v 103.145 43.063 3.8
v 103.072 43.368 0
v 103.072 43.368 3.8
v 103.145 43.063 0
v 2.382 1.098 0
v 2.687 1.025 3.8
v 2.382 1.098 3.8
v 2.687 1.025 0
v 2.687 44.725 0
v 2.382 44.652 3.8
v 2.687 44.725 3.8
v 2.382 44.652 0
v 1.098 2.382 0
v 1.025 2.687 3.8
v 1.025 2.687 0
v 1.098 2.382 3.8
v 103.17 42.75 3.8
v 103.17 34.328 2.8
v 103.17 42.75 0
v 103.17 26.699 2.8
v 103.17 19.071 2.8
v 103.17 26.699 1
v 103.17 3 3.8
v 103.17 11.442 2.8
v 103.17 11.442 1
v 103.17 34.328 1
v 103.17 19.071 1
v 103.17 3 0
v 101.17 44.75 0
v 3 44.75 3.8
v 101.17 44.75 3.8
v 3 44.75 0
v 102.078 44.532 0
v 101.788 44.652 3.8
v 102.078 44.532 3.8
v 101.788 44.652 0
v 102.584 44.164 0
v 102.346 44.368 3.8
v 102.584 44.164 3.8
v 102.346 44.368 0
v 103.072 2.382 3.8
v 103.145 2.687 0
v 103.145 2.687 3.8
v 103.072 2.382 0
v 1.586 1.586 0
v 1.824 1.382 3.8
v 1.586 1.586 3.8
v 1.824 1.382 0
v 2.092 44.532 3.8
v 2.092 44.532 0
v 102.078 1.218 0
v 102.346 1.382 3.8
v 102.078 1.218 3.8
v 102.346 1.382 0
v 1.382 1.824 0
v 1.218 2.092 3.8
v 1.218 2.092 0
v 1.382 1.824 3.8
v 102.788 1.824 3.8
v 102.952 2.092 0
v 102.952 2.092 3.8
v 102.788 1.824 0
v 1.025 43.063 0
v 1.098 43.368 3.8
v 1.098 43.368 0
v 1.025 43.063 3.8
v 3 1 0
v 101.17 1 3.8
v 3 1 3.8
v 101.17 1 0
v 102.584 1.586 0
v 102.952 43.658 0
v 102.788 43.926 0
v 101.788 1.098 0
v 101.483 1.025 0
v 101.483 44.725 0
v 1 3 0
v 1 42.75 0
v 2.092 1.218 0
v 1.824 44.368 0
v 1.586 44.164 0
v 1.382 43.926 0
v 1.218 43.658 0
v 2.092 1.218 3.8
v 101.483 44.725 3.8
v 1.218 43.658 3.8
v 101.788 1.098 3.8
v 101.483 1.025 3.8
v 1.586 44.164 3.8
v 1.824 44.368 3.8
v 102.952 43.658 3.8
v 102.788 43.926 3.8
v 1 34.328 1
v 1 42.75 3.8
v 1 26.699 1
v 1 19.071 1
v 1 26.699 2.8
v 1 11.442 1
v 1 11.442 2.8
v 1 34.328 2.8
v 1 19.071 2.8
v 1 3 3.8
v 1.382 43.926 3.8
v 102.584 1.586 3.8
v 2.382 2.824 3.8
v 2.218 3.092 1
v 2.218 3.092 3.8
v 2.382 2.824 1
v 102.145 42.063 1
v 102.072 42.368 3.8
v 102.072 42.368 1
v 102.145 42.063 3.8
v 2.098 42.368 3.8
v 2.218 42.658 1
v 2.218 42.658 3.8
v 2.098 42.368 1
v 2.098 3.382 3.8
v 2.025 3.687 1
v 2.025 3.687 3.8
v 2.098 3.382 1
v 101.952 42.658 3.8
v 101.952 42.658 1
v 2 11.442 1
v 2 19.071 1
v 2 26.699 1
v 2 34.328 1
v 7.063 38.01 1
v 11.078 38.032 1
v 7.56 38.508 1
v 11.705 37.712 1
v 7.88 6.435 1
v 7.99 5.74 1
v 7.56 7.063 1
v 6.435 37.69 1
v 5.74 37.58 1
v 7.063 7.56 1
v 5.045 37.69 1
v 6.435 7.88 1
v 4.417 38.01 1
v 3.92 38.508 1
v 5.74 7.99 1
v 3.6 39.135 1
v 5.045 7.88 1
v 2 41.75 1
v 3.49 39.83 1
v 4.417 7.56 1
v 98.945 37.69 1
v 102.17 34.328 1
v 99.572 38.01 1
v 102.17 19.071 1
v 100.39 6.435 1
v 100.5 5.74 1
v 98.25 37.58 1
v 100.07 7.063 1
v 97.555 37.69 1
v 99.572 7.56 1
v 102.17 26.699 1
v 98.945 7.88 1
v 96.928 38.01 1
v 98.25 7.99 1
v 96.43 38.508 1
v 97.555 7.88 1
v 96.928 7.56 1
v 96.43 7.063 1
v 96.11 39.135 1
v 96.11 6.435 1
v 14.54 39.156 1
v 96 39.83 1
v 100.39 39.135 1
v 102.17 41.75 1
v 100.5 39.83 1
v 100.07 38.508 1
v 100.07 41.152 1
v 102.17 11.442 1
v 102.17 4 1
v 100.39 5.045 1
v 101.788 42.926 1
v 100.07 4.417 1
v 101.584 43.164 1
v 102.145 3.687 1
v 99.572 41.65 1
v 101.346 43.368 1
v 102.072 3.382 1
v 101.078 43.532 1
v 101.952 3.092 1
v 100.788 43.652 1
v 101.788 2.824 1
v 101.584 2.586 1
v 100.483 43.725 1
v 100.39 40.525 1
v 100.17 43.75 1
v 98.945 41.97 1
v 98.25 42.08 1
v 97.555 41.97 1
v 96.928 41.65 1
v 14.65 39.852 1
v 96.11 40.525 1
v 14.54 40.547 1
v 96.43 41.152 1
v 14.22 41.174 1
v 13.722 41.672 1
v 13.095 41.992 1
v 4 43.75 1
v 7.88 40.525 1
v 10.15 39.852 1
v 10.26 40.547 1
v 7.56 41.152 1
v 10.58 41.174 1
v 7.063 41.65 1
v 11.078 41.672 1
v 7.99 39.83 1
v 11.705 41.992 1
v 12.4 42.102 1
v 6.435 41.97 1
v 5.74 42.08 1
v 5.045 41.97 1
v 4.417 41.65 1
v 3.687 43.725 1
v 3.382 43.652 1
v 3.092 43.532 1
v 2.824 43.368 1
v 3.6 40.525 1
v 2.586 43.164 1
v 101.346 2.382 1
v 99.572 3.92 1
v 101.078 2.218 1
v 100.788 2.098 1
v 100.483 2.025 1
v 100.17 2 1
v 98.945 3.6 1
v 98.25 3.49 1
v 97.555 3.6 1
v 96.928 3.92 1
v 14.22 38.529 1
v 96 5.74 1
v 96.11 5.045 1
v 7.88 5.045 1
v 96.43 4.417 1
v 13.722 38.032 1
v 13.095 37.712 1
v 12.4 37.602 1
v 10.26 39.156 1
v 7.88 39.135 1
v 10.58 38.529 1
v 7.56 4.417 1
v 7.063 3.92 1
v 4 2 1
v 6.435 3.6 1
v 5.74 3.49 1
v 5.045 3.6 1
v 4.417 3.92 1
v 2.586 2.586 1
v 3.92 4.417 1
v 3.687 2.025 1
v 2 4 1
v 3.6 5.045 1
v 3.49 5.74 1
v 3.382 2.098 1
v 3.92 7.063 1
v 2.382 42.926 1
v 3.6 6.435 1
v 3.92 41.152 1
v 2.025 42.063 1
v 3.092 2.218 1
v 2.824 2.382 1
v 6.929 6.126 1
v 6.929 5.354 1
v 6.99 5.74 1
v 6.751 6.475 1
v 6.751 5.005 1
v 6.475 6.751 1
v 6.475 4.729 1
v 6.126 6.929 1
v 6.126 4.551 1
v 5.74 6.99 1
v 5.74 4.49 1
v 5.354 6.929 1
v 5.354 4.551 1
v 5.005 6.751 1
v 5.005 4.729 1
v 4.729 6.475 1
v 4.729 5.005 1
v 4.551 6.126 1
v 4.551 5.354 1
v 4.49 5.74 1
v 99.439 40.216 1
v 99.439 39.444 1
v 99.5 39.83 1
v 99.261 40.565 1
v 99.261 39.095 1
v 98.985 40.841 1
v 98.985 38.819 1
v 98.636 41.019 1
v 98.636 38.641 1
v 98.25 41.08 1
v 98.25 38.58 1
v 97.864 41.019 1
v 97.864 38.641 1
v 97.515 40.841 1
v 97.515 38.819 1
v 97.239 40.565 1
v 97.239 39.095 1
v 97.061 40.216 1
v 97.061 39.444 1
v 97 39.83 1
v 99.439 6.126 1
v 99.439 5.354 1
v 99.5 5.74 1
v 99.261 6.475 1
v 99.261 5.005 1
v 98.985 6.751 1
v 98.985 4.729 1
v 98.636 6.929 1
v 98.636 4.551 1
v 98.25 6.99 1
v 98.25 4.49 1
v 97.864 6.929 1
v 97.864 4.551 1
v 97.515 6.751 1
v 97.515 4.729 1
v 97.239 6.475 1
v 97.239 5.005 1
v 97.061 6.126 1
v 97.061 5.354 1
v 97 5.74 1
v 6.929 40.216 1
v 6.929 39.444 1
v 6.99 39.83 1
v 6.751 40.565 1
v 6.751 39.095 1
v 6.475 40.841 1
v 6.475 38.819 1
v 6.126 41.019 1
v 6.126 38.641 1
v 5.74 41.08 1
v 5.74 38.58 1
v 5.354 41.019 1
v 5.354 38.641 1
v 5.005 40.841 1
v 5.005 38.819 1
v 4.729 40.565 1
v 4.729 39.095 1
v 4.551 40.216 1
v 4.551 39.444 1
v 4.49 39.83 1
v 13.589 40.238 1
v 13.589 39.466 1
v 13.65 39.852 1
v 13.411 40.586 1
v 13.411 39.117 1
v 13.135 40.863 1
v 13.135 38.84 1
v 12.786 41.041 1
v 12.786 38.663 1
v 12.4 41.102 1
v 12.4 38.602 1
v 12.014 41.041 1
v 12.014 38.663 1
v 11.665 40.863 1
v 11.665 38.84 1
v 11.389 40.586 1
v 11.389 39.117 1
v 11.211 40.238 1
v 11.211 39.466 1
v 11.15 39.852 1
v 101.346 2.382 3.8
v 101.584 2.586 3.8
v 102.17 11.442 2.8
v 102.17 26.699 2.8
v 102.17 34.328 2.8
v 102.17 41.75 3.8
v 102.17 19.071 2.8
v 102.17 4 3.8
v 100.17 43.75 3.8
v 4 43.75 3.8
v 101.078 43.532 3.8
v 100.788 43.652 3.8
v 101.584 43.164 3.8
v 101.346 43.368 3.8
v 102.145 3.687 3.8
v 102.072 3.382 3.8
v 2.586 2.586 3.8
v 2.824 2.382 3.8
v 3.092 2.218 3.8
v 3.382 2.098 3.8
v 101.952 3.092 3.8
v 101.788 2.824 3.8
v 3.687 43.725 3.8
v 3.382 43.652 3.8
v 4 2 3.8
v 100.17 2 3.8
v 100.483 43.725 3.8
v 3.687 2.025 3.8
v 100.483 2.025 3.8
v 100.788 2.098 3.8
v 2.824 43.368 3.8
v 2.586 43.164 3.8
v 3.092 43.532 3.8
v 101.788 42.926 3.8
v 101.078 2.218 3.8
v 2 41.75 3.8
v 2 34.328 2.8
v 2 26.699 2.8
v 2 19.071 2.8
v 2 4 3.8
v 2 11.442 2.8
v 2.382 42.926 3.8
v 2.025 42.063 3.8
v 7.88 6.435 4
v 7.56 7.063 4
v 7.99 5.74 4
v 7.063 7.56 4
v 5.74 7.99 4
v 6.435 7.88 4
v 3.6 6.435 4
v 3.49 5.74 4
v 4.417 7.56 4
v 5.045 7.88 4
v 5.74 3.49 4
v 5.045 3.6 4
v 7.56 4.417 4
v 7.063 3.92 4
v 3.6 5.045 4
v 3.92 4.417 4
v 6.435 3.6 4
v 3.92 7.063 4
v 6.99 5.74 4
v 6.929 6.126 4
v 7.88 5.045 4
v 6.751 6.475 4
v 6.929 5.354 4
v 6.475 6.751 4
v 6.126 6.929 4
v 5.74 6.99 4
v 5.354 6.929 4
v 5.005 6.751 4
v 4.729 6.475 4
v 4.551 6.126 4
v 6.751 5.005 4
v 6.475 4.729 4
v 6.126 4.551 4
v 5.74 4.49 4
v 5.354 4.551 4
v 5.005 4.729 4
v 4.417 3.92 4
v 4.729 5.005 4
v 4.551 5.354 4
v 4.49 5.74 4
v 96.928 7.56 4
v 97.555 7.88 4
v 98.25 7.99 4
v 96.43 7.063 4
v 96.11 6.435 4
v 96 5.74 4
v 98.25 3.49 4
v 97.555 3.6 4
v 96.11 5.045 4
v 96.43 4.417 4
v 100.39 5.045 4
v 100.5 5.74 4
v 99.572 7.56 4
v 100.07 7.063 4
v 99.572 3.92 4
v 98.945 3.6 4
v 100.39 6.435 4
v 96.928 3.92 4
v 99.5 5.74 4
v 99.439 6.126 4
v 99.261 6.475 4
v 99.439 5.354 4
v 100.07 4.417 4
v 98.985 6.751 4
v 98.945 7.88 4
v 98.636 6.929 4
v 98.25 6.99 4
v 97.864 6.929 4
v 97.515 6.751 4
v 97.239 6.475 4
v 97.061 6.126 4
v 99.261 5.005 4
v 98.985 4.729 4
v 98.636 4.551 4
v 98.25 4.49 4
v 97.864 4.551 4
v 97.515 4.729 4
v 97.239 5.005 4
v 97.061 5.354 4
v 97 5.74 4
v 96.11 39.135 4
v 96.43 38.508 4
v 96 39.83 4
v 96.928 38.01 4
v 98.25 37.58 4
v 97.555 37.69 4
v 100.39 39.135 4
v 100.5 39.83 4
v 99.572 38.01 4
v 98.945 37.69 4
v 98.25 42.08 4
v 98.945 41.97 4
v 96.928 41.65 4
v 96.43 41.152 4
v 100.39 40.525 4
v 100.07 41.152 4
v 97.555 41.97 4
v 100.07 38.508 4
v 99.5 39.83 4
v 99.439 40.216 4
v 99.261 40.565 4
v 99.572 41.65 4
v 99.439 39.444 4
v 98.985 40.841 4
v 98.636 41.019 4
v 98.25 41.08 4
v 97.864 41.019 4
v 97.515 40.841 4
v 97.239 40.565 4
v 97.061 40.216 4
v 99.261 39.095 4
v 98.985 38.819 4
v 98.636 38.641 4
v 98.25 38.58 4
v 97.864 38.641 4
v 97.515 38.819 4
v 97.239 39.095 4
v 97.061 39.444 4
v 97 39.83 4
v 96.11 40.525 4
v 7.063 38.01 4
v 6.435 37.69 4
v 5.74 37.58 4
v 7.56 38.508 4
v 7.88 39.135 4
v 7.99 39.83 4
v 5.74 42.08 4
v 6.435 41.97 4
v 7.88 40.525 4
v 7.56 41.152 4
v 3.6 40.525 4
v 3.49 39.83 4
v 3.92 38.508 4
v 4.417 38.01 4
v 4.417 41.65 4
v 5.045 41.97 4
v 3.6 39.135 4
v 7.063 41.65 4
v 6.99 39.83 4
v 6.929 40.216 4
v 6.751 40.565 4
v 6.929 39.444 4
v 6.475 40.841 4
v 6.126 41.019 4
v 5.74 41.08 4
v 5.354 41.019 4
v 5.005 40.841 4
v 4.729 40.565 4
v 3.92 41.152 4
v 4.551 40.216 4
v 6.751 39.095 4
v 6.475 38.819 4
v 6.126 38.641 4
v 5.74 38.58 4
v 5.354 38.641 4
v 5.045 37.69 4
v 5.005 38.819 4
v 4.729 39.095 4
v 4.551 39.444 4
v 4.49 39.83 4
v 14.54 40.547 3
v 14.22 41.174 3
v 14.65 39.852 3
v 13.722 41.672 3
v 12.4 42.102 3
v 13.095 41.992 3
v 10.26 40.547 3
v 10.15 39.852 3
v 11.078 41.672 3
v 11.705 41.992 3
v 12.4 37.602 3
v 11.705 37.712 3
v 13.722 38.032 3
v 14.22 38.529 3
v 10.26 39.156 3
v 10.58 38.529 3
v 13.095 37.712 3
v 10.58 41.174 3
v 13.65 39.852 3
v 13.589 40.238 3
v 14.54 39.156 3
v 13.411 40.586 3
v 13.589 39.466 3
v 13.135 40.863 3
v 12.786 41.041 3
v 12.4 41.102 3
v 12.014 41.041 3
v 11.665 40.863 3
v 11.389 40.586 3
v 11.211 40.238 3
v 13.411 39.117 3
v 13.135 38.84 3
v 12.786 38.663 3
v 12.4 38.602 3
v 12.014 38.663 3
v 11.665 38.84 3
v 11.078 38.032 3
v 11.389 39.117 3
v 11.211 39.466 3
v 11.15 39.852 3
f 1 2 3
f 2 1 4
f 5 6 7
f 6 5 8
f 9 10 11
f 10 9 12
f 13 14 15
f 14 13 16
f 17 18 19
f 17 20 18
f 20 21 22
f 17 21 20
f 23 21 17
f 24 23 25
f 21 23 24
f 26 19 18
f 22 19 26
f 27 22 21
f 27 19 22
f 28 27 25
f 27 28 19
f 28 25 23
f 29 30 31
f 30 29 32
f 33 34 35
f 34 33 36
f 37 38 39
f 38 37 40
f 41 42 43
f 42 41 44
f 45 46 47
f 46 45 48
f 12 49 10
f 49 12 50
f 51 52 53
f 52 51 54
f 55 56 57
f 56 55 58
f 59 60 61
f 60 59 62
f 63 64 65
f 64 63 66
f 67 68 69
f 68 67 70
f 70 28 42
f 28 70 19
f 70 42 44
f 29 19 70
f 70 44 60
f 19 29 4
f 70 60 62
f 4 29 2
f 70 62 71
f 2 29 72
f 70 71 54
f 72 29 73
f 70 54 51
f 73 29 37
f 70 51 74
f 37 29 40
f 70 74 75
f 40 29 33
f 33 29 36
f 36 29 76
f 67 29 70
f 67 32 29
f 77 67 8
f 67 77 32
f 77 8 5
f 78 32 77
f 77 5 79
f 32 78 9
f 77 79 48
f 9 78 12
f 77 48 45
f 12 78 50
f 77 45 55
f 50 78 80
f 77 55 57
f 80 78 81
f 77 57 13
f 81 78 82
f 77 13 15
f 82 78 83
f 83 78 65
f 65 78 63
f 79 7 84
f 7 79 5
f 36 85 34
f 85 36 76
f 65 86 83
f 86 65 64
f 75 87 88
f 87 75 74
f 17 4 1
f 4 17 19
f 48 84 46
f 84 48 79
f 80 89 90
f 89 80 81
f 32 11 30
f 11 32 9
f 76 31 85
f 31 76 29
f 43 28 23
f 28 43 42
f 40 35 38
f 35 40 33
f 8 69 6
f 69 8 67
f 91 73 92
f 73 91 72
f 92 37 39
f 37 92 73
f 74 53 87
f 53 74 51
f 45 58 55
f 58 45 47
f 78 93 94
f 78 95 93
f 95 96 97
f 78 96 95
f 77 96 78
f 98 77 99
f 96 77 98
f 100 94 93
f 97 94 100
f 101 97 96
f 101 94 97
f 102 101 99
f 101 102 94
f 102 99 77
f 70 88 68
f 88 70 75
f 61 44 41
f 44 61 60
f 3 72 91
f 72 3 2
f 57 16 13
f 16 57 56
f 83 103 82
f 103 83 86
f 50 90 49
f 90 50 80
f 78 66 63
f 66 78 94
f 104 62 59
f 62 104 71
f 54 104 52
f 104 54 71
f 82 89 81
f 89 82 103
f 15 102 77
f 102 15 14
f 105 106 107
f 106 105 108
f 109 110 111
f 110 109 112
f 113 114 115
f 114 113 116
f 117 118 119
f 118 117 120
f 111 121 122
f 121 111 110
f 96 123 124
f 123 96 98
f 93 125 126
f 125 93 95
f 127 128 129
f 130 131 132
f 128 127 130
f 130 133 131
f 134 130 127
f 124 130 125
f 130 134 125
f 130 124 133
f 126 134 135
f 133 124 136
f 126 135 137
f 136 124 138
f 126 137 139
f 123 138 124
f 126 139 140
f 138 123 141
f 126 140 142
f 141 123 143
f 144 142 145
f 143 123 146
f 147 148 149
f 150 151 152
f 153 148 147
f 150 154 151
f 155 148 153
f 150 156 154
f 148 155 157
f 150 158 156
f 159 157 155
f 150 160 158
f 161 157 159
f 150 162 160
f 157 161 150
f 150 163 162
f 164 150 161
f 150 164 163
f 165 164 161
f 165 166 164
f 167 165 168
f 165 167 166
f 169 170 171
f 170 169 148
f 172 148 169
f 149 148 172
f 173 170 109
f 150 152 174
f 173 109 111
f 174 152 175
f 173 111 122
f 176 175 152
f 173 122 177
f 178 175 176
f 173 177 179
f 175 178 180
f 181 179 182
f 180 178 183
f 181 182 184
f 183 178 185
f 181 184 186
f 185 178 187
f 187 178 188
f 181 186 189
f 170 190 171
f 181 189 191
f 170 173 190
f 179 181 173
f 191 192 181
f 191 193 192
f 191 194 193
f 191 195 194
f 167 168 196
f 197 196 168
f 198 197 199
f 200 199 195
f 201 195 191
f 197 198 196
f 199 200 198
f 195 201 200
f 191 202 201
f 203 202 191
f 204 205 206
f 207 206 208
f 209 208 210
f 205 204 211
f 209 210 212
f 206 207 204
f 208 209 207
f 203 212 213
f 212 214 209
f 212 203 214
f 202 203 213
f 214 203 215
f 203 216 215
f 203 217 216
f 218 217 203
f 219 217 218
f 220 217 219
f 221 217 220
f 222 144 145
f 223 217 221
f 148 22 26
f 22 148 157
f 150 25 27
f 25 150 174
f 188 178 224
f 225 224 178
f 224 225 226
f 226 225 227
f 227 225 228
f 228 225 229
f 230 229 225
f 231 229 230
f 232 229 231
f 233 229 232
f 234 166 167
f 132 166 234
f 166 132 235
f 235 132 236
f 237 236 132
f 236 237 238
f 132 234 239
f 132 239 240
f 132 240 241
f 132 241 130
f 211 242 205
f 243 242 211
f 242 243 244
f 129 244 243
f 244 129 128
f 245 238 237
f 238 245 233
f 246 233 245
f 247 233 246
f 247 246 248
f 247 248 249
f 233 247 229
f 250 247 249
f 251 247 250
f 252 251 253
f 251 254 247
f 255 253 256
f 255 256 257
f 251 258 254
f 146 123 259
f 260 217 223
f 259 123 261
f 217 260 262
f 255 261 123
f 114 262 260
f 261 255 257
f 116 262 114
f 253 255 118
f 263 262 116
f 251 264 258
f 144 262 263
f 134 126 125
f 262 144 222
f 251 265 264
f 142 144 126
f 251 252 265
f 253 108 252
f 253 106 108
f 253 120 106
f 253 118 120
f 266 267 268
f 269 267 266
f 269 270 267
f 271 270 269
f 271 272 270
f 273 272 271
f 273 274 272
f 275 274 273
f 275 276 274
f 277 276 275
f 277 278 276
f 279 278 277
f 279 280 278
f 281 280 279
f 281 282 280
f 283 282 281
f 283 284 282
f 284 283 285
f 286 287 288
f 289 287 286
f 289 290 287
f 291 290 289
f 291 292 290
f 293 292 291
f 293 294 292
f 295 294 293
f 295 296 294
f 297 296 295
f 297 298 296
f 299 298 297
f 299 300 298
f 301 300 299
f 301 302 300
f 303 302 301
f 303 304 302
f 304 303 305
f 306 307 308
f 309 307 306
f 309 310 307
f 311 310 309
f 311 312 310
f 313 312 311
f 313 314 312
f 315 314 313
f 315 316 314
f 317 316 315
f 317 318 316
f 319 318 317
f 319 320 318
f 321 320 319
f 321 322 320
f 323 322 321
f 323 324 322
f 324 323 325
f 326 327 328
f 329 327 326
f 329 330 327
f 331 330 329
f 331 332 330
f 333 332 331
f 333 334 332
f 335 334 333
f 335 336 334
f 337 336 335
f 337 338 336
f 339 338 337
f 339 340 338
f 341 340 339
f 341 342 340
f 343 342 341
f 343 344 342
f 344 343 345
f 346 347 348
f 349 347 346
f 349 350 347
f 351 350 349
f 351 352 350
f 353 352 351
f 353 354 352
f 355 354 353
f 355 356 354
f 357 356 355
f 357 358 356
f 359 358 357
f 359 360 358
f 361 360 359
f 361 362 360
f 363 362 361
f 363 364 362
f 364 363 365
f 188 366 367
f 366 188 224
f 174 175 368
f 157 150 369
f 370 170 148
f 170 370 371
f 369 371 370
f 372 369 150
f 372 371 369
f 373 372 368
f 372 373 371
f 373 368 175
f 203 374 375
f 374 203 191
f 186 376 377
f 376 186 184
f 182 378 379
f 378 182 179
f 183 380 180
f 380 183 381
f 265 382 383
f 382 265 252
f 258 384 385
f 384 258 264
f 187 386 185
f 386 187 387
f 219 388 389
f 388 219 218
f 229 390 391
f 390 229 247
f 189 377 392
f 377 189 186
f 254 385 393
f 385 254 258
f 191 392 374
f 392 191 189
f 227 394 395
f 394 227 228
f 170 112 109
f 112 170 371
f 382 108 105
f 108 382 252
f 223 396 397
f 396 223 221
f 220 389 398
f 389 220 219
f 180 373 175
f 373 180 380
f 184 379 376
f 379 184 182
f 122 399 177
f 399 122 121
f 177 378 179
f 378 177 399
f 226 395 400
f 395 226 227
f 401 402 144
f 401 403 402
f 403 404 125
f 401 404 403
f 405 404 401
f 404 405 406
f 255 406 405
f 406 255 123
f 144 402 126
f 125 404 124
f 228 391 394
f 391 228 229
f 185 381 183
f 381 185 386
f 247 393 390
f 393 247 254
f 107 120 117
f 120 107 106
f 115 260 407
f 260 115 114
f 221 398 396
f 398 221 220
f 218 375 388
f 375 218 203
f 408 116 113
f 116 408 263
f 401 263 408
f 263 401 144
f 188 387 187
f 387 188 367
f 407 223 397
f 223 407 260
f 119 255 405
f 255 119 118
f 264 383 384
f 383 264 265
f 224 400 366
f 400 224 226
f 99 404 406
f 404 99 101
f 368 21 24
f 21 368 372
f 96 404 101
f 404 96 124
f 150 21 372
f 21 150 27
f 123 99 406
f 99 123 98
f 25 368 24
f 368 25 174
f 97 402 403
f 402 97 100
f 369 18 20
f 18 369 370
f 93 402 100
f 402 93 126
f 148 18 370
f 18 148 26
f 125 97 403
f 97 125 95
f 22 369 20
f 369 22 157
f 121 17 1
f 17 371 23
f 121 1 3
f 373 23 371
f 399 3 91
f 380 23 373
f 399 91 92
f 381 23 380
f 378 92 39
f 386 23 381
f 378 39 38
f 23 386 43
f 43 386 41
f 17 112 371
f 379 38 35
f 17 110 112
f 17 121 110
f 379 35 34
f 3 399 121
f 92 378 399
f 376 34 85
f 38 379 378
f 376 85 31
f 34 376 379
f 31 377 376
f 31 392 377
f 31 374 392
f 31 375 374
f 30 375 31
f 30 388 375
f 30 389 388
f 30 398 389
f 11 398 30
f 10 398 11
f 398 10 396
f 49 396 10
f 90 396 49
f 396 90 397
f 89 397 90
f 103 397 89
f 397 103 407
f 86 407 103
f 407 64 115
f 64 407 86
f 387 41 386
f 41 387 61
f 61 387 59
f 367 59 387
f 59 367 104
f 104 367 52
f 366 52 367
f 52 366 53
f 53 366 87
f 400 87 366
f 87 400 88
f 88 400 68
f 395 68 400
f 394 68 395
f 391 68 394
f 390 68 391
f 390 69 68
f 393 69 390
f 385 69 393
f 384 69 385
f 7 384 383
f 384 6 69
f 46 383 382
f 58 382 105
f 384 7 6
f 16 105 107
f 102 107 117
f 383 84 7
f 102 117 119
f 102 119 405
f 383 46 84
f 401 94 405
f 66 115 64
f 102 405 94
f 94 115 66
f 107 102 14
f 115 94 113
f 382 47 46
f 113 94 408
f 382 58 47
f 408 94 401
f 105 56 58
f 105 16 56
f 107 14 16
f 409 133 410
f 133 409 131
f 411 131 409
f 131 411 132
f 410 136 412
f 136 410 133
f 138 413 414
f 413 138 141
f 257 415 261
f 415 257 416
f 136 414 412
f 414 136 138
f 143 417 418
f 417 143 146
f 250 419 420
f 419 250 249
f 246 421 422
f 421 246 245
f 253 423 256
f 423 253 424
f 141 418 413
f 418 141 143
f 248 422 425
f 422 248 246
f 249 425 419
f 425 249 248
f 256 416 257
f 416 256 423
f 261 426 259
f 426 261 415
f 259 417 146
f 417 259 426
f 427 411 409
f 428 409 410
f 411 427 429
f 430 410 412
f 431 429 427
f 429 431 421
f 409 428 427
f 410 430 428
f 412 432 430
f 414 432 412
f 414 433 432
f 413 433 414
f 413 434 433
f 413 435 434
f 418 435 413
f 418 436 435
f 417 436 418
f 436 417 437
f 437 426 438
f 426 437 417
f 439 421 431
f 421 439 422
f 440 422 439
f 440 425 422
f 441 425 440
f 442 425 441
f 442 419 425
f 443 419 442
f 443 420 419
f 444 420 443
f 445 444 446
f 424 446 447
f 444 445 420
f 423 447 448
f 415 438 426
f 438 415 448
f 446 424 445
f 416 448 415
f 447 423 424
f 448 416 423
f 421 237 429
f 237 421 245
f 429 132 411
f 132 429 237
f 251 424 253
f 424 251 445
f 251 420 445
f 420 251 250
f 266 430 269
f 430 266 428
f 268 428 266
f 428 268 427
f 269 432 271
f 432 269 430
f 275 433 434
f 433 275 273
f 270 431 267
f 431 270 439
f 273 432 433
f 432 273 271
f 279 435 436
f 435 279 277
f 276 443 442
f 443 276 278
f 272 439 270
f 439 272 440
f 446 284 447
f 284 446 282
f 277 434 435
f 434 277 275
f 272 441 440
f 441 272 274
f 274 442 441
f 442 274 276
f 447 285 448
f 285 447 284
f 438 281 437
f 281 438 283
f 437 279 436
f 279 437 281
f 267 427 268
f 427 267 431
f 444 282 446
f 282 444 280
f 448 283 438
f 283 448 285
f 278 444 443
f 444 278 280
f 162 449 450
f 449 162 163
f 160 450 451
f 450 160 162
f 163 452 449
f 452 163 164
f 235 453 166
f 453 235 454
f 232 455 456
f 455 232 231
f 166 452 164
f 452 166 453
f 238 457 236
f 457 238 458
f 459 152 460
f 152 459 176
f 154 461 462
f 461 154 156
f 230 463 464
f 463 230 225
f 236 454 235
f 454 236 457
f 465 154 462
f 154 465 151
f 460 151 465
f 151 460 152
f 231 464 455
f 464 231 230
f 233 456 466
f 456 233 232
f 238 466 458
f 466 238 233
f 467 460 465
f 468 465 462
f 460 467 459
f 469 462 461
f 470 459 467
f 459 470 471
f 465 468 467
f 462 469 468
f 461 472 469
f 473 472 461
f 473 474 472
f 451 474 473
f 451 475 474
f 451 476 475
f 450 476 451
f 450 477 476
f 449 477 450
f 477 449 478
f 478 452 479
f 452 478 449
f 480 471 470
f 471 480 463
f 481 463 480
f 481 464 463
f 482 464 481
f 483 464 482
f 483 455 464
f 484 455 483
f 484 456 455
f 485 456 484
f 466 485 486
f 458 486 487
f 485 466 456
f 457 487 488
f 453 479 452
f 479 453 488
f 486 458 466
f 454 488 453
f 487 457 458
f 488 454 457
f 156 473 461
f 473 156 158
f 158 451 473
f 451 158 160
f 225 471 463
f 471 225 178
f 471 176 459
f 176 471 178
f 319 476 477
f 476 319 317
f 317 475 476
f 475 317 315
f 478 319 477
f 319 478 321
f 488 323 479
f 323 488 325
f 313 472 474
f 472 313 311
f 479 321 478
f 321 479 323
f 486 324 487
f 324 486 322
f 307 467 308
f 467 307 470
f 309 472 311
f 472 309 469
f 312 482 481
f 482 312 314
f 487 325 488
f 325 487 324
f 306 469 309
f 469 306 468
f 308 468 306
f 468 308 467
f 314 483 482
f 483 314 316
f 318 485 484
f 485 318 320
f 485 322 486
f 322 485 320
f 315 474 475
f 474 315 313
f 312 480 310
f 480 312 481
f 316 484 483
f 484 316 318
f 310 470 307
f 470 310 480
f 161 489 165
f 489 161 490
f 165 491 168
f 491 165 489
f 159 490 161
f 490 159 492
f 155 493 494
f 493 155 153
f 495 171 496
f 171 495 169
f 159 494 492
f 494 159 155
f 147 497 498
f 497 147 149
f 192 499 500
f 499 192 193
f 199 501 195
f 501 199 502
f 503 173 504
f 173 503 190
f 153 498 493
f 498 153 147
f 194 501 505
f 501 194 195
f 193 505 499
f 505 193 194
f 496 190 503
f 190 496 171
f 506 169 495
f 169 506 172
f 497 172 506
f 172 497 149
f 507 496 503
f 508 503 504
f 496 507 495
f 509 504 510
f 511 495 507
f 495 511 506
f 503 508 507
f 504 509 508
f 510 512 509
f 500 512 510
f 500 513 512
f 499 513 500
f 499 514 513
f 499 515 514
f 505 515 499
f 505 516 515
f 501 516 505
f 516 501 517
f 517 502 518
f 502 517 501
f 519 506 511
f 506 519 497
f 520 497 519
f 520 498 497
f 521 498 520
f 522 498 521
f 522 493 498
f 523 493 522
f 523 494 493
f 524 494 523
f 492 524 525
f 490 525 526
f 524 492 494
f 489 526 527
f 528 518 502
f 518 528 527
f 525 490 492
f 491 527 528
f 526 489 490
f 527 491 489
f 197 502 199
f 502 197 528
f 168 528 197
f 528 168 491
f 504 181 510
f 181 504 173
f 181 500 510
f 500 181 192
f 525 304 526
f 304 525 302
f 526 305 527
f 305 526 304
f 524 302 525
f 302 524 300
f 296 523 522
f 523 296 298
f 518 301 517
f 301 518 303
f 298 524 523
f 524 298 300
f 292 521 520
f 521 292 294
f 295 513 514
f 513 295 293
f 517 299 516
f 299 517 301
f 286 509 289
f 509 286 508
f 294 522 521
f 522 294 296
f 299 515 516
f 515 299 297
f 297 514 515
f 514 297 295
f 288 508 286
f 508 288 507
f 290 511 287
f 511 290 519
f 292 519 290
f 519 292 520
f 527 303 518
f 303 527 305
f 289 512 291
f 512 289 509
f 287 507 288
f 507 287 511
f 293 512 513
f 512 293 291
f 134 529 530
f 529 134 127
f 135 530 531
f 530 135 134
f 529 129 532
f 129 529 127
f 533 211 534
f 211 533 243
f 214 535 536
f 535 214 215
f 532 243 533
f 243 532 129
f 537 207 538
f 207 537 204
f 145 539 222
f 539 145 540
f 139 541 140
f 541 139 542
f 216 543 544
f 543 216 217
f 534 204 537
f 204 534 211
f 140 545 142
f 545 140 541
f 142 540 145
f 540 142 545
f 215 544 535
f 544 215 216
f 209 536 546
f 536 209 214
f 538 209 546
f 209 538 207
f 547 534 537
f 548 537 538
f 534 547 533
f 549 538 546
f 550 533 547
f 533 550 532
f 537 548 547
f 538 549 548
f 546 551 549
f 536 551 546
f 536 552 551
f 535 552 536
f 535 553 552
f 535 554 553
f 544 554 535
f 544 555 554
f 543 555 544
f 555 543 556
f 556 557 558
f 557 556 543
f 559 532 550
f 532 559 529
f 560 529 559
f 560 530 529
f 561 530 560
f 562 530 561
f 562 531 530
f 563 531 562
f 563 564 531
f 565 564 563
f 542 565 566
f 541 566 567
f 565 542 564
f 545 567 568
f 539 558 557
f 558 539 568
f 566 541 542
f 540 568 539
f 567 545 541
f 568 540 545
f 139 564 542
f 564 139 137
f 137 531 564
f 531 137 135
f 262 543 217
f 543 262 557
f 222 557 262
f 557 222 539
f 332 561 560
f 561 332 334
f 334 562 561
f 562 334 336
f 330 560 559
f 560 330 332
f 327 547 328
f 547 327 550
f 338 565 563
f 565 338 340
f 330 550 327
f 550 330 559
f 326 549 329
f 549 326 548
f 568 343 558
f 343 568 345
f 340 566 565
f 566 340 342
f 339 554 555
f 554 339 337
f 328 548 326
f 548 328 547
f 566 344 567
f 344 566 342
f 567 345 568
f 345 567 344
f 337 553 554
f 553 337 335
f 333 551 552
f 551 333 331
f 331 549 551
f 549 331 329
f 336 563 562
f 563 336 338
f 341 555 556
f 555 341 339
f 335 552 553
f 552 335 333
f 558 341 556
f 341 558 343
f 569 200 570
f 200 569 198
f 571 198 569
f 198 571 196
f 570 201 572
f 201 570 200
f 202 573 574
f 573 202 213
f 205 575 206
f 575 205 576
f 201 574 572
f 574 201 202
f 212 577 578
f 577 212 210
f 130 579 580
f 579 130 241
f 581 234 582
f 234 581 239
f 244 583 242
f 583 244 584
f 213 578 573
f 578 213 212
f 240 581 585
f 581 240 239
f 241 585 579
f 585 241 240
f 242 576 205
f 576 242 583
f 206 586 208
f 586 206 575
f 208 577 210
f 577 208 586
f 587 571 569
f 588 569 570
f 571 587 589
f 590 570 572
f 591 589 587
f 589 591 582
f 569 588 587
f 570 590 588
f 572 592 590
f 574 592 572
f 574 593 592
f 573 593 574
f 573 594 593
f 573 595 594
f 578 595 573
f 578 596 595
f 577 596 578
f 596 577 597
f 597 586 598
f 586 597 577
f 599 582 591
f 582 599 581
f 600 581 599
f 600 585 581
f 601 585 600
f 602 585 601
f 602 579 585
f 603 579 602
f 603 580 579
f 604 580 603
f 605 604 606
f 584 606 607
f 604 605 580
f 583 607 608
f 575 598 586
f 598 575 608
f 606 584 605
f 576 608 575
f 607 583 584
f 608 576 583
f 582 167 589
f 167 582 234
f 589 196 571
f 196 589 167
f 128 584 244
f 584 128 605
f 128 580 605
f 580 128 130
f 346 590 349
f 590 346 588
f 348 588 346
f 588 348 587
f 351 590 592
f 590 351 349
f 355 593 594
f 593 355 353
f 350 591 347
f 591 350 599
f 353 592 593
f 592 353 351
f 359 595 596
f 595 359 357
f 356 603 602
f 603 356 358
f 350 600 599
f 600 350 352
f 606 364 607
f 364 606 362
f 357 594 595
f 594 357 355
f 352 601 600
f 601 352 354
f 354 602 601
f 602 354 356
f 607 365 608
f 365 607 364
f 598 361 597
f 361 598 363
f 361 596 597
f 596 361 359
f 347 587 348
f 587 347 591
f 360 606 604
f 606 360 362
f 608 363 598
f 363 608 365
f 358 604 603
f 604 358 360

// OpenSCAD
// file: ProjectBox/util.scad
// Copyright (c) 2024 Chris Lee and contibuters.
// Licensed under the MIT license. See LICENSE file in the project root for details.

include <MCAD/units.scad>

ones = [1, 1, 1];

module RX(angle) {
  rotate(angle, X) children();
}
module RY(angle) {
  rotate(angle, Y) children();
}
module RZ(angle) {
  rotate(angle, Z) children();
}
module TX(dist) {
  translate(X*dist) children();
}
module TX(dist) {
  translate(X*dist) children();
}
module TY(dist) {
  translate(Y*dist) children();
}
module TZ(dist) {
  translate(Z*dist) children();
}

// x-extra and y-extra adjust the x/y offset at the far-x and far-y corners.
module at_corners(dims, corner_offset, to_draw=undef, x_extra=0.0, y_extra=0.0) {
  o = corner_offset;
  if (!to_draw || to_draw[0]) translate([o, o, 0]) children();
  if (!to_draw || to_draw[1]) translate([dims[0]-o+x_extra, o, 0]) rotate(90, Z) children();
  if (!to_draw || to_draw[2]) translate([dims[0]-o+x_extra, dims[1]-o+y_extra, 0])
				rotate(180, Z) children();
  if (!to_draw || to_draw[3]) translate([o, dims[1]-o+y_extra, 0]) rotate(270, Z) children();
}
// file: ProjectBox/screw_tab.scad
// Copyright (c) 2024 Chris Lee and contibuters.
// Licensed under the MIT license. See LICENSE file in the project root for details.

include <MCAD/units.scad>

// Screw tab is drawn in the y-direction (attached on -Y side).
module screw_tab(tab_width=10, thickness=2, screw_radius=2) {
  $fn=40;
  dz = thickness;
  sd = tab_width;
  sr = tab_width / 2;
  translate([-sr, -epsilon, 0]) difference() {
    union() {
      cube([sd, sr, dz]);
      translate([sr, sr, 0]) cylinder(dz, sr, sr);
    }
    translate([sr, sr, -epsilon]) cylinder(dz+1, screw_radius, screw_radius);
  }
}
// file: ProjectBox/rounded_box.scad
// Copyright (c) 2024 Chris Lee and contibuters.
// Licensed under the MIT license. See LICENSE file in the project root for details.

module rounded_box(dims, r) {
  x = dims[0];
  y = dims[1];
  z = dims[2];
  module cyl() {
    cylinder(z, r, r, $fn=40);
  }
  if (r == 0) {
    cube(r);
  } else {
    hull() {
      translate([r, r, 0]) cyl();
      translate([x-r, r, 0]) cyl();
      translate([x-r, y-r, 0]) cyl();
      translate([r, y-r, 0]) cyl();
    }
  }
}
// file: board.scad
// Copyright (c) 2026 Chris Lee and contributors.
// Licensed under the MIT license. See LICENSE file in the project root for details.

include <ProjectBox/project_box.scad>

board_thickness = 1.6;
pad_space = 2.54;
board_dims = [ 97.79, 39.37, board_thickness];

module Garage133_board() {
  u = pad_space;

  // Board imported from KiCad (VRML) -> Blender
  translate([board_dims[0]/2, board_dims[1]/2, board_dims[2]/2]) color("white")
    import(file="../../KiCAD/Garage133.stl", convexity=3);

}
// file: ProjectBox/shtc3_window.scad
// Copyright (c) 2024 Chris Lee and contibuters.
// Licensed under the MIT license. See LICENSE file in the project root for details.

module shtc3_window(offset, space_above_board, wall, negative, z_gap = 0.0) {
  sz = [3, 3, 1];
  translate(offset) {
    if (negative) {
      translate([0, 0, z_gap-1]) {
	cube([sz[0], sz[1], space_above_board+wall+2-z_gap]);
      }
    } else {
      translate([-wall, -wall, z_gap+epsilon]) {
	cube([sz[0] + 2*wall, sz[1] + 2*wall, space_above_board-z_gap]);
      }
    }
  }
}
// file: ProjectBox/oled91.scad
// Copyright (c) 2024 Chris Lee and contibuters.
// Licensed under the MIT license. See LICENSE file in the project root for details.

// This is a simple model of a 0.91" OLED module.
// E.g., https://www.aliexpress.us/item/2251832485915041.html
module oled91() {
  s = inch * 0.1;
  pin_len = 4;
  color("silver") {
    for (i = [0: 3]) {
      translate([s*i+pad_space, pad_space/2, -pin_len]) cube([0.25, 0.25, pin_len]);
    }
  }
  color("gray") cube([12, 38, 1]);
  translate([0, 5.5, 1]) color("black") cube([12, 28, 1]);
}
// file: ProjectBox/mounts.scad
// Copyright (c) 2024 Chris Lee and contibuters.
// Licensed under the MIT license. See LICENSE file in the project root for details.

module screw_mount(height, wall, screw_radius) {
  $fn = 20;
  difference() {
    cylinder(height, screw_radius+wall, screw_radius+wall);
    cylinder(height+epsilon, screw_radius, screw_radius);
  }
}
// file: ProjectBox/project_box.scad
// Copyright (c) 2024 Chris Lee and contibuters.
// Licensed under the MIT license. See LICENSE file in the project root for details.

include <MCAD/units.scad>
include <rounded_box.scad>
include <screw_tab.scad>
use <util.scad>

bump_d = 0.8;

module in_board_frame(outer_dims, board_dims, space_below_board) {
  translate([(outer_dims[0] - board_dims[0])/2,
	     (outer_dims[1] - board_dims[1])/2,
	     space_below_board])
    children();
}

default_tab_len = 10;
function tab_length(dim, num_tabs=2) = min(default_tab_len, dim/(2*(num_tabs+1)));
function tab_offset(i, dim, num_tabs=2) = (dim*(i+1)/(num_tabs+1))-0.5*tab_length(dim, num_tabs);

module project_box(outer_dims,
		   wall_thickness=1,
		   gap=0.1,
		   // If true put snaps for top/bottom on sides rather than front/back.
		   snaps_on_sides=false,
		   corner_radius=0.0,
		   top=true,
		   top_cutouts=undef,
		   ym_cutouts=undef,
		   screw_tab_d=0) {
  wall = wall_thickness;
  num_snaps = 2;

  // Length of side of box snap-tabs will be added.
  tabdim = snaps_on_sides ? outer_dims[1] : outer_dims[0];
  // Length of snap-tab holes (tabs shrinks slightly to fit).
  tablen = tab_length(tabdim, num_snaps);
  // Difference between tab length and tab hole length;
  tab_gap = 1;

  // Space between bottom of box and top of box.
  fit_gap = 0.02;

  // The bottom of the box fits inside the shell of the top.
  dims = top ? outer_dims : outer_dims - (2*wall+fit_gap) * [1, 1, 1];

  // Tabs for clicking base into start at wall-height, are 2*wall-height high.
  // Allow 2*wall_height above bump for hight of bottom part of box.
  tab_depth = min(bump_d, dims[2] - 3*wall);
  bottom_height = wall+tab_depth+2*wall;

  module bump() {
    dh = bump_d - fit_gap;
    rotate(90, Y) cylinder(tablen-tab_gap, dh, dh, $fn=20);
  }

  module hump_positives(humps, space_above_board, corner_radius, wall) {
    for (hump = humps) {
      offset = hump[0];
      outer_dims = hump[1];
      z_start = gap * 2 + wall + space_below_board + board_thickness + space_above_board + epsilon;
      translate([offset[0], offset[1], z_start]) rounded_box(outer_dims, corner_radius);
    }
  }
  module hump_negatives(humps, space_above_board, corner_radius, wall) {
    for (hump = humps) {
      offset = hump[0];
      outer_dims = hump[1];
      z_start = gap * 2 + wall + space_below_board + board_thickness + space_above_board - epsilon - epsilon;
      translate([offset[0]+wall, offset[1]+wall, z_start])
	rounded_box(outer_dims-[wall*2, wall*2, wall], corner_radius);
    }
  }
  module cutouts(cutout_list, remove_len) {
    for (cutout = cutout_list) {
      offset = cutout[0];
      dims = cutout[1];
      translate([offset[0], offset[1], 0]) cube([dims[0], dims[1], remove_len]);
    }
  }

  wedge_dx = 2*wall;
  wedge_dy = min(outer_dims[1]-2*wall-corner_radius, 10);
  wedge_dz = wedge_dx;
  module wedge() {
    // Bump to stop the bottom of box to go too up into the top.
    translate([0, 0, bottom_height+fit_gap]) {
      // Start with cube, switch to wedge for printing.
      translate(Y*wedge_dy) rotate(90, X)
	linear_extrude(wedge_dy) polygon([[0, 0], [0, wedge_dz], [wedge_dx, 0]]);
    }
  }

  // The bottom of the box fits inside the shell of the top.
  translate(top ? [0,0,0] : wall*[1, 1, 0]) union() {
    difference() {
      // shell
      difference() {
	union() {
	  rounded_box(dims, corner_radius);
	  if (top)
	    hump_positives(bumps, space_above_board, corner_radius, wall);
	}
	iz = top ? (dims[2] - 2*wall) : dims[2];  // inner-z
	translate(ones*wall) rounded_box([dims[0] - wall*2, dims[1]-wall*2, iz], corner_radius);
	if (top) {
	  hump_negatives(bumps, space_above_board, corner_radius, wall);
	  // cutouts from the top surface
	  if (top_cutouts)
	    cutouts(top_cutouts, remove_len=100);
	  // cutouts from the y=0 surface
	  if (ym_cutouts)
	    translate([0, 1+wall, 0]) rotate([90, 0, 0]) cutouts(ym_cutouts, remove_len=(wall+2));
	}
      }

      if (!top) {
	// Box bottom

	// Cut off top.
	translate([-1, -1, bottom_height]) { cube(dims + 2 * ones); }
	// Make a slot for top to click into
	bottom_offset = -wall;  // offset to account for bottom fitting inside top.
	if (snaps_on_sides) {
	  for (isnap = [0:num_snaps-1]) {
	    y = tab_offset(isnap, tabdim, num_snaps) + bottom_offset;
	    translate([-1, y, wall]) cube([dims[0]+2, tablen, wall+tab_depth]);
	  }
	} else {
	  for (isnap = [0:num_snaps-1]) {
	    x = tab_offset(isnap, tabdim, num_snaps) + bottom_offset;
	    translate([x, -1, wall]) cube([tablen, dims[1]+2, wall+tab_depth]);
	  }
	}
      }	else {
	// Box top

	// Cut out for bottom
	translate(wall*[1, 1, -1]) {
	  rounded_box([dims[0]-2*wall, dims[1]-2*wall, wall*3], corner_radius);
	}
      }
    }

    // Board supports
    if (top) {
      // Snaps: Make bumps to click into slot in bottom.
      if (snaps_on_sides) {
	for (isnap = [0:num_snaps-1]) {
	  y = tab_offset(isnap, tabdim, num_snaps) + tab_gap/2;
	  translate([wall-epsilon, y, wall+gap/2]) rotate(90, Z) bump();
	  translate([dims[0]+epsilon-wall, y, wall+gap/2]) rotate(90, Z) bump();
	}
	translate([wall-epsilon, (outer_dims[1]-wedge_dy)/2, 0]) wedge();
	translate([outer_dims[0]-wall+epsilon, (outer_dims[1]+wedge_dy)/2, 0])
	  rotate(180, Z) wedge();
      } else {
	for (isnap = [0:num_snaps-1]) {
	  x = tab_offset(isnap, tabdim, num_snaps) + tab_gap/2;
	  translate([x, wall-epsilon, wall+gap/2]) bump();
	  translate([x, dims[1]+epsilon-wall, wall+gap/2]) bump();
	}
	translate([(outer_dims[0]+wedge_dy)/2, wall-epsilon, 0]) rotate(90, Z) wedge();
	translate([(outer_dims[0]-wedge_dy)/2, outer_dims[1]-wall+epsilon, 0])
	  rotate(270, Z) wedge();
      }
    }
  }

  if (top && screw_tab_d > 0) {
    translate([outer_dims[0]/2, outer_dims[1], 0])
      screw_tab(tab_width=screw_tab_d, thickness=2*wall, screw_radius=2);
  }
}

module holder_tab(wall_thickness, thickness=2, out_r=4, in_r=2) {
  translate(Z*wall_thickness) linear_extrude(thickness) {
    $fn = 20;
    y = epsilon;
    difference() {
      hull() {
	translate([0, epsilon-out_r]) circle(out_r);
	polygon([[-out_r, epsilon], [out_r, epsilon],
		 [out_r, 2*epsilon], [out_r, 2*epsilon]]);
      }
      translate([0, -out_r]) circle(in_r);
    }
  }
}
// file: box.scad
// Copyright (c) 2026 Chris Lee and contributors.
// Licensed under the MIT license. See LICENSE file in the project root for details.

include <ProjectBox/project_box.scad>
include <ProjectBox/mounts.scad>
include <ProjectBox/oled91.scad>
include <ProjectBox/shtc3_window.scad>
include <board.scad>

ones = [1, 1, 1];

wall_thickness = 1;
gap = 0.2;
corner_radius = 2;

mount_offset = pad_space;
space_above_board = 2;
space_below_board = 3;
inner_dims = (board_dims
	      + Z*(space_above_board+space_below_board)
	      + 2*gap*ones);
outer_dims = (inner_dims
	      + 2*ones*wall_thickness
	      + [2, 2, 0] * corner_radius);

// cutout for oled screen
oled_o = [16.5, 8];
oled_d = [12, 28];
sonar_co1_o = [34, 26];
sonar_co1_d = [15, 15];
sonar_co2_o = [59, 26];
sonar_co2_d = [15, 15];
relay1_co_o = [48, 28.5];
relay1_co_d = [11, 6.5];
relay2_co_o = [49, 11.5];
relay2_co_d = [9.5, 7];
pirl_co_o = [45.8, 4];
pirl_co_d = [13., 7];

top_cutouts = [[oled_o, oled_d],
	       [sonar_co1_o, sonar_co1_d],
	       [sonar_co2_o, sonar_co2_d],
	       [relay1_co_o, relay1_co_d],
	       [relay2_co_o, relay2_co_d],
	       [pirl_co_o, pirl_co_d],
	       ];

usb_cutout = [[45.7, wall_thickness+space_below_board+board_thickness-1], [9.5, 3.5]];
yp_cutouts = [usb_cutout];

// humps is a list of [offset-xy, outer_dims]
oled_ho = [14, 0];
oled_hd = [17, outer_dims[1], 12];
relay_hd = [30, outer_dims[1], 14];
relay_ho = [outer_dims[0]-relay_hd[0], 0];
humps = [[oled_ho, oled_hd], [relay_ho, relay_hd]];

module in_Garage133_board_frame(board_height=false) {
  zoffset = wall_thickness + (board_height ? space_below_board + 2*gap + board_thickness : 0);
  //  zoffset = wall_thickness + (board_height ? space_below_board : 0);
  in_board_frame(outer_dims, board_dims, zoffset) children();
}
module Garage133_box(top) {
  wall = wall_thickness;
  shtc3_loc = [9, 0.6, 0];

  difference() {
    union() {
      project_box(outer_dims,
		  wall_thickness=wall_thickness,
		  gap=gap,
		  snaps_on_sides=true,
		  top_cutouts=top_cutouts,
		  yp_cutouts=yp_cutouts,
		  corner_radius=corner_radius,
		  humps=humps,
		  top=top);
      if (top) {
	in_Garage133_board_frame(board_height=true)
	  shtc3_window(shtc3_loc, space_above_board+wall, wall, false, z_gap=-1);
	screw_tab_d = 10;
	translate([outer_dims[0]/2+15, outer_dims[1], 0])
	  screw_tab(tab_width=screw_tab_d, thickness=2*wall, screw_radius=2);
      } else {
	// Stuff to add on bottom.
	in_Garage133_board_frame() {
	  at_corners(board_dims+1.0*X, mount_offset, x_extra=-1.2, y_extra=-0.2)
	    screw_mount(space_below_board, wall, 2.5/2);
	}
	translate([12.4, outer_dims[1]-pad_space*2.33, 0])
	  screw_mount(space_below_board, wall, 2.5/2);
      }
    }
    // Cut outs.
    if (top) {
      in_Garage133_board_frame(board_height=true)
	shtc3_window(shtc3_loc, space_above_board+wall, wall, true, z_gap=-1);
    }
  }
}
// main file
// Copyright (c) 2026 Chris Lee and contributors.
// Licensed under the MIT license. See LICENSE file in the project root for details.

include <box.scad>

top = false;

Garage133_box(top);
